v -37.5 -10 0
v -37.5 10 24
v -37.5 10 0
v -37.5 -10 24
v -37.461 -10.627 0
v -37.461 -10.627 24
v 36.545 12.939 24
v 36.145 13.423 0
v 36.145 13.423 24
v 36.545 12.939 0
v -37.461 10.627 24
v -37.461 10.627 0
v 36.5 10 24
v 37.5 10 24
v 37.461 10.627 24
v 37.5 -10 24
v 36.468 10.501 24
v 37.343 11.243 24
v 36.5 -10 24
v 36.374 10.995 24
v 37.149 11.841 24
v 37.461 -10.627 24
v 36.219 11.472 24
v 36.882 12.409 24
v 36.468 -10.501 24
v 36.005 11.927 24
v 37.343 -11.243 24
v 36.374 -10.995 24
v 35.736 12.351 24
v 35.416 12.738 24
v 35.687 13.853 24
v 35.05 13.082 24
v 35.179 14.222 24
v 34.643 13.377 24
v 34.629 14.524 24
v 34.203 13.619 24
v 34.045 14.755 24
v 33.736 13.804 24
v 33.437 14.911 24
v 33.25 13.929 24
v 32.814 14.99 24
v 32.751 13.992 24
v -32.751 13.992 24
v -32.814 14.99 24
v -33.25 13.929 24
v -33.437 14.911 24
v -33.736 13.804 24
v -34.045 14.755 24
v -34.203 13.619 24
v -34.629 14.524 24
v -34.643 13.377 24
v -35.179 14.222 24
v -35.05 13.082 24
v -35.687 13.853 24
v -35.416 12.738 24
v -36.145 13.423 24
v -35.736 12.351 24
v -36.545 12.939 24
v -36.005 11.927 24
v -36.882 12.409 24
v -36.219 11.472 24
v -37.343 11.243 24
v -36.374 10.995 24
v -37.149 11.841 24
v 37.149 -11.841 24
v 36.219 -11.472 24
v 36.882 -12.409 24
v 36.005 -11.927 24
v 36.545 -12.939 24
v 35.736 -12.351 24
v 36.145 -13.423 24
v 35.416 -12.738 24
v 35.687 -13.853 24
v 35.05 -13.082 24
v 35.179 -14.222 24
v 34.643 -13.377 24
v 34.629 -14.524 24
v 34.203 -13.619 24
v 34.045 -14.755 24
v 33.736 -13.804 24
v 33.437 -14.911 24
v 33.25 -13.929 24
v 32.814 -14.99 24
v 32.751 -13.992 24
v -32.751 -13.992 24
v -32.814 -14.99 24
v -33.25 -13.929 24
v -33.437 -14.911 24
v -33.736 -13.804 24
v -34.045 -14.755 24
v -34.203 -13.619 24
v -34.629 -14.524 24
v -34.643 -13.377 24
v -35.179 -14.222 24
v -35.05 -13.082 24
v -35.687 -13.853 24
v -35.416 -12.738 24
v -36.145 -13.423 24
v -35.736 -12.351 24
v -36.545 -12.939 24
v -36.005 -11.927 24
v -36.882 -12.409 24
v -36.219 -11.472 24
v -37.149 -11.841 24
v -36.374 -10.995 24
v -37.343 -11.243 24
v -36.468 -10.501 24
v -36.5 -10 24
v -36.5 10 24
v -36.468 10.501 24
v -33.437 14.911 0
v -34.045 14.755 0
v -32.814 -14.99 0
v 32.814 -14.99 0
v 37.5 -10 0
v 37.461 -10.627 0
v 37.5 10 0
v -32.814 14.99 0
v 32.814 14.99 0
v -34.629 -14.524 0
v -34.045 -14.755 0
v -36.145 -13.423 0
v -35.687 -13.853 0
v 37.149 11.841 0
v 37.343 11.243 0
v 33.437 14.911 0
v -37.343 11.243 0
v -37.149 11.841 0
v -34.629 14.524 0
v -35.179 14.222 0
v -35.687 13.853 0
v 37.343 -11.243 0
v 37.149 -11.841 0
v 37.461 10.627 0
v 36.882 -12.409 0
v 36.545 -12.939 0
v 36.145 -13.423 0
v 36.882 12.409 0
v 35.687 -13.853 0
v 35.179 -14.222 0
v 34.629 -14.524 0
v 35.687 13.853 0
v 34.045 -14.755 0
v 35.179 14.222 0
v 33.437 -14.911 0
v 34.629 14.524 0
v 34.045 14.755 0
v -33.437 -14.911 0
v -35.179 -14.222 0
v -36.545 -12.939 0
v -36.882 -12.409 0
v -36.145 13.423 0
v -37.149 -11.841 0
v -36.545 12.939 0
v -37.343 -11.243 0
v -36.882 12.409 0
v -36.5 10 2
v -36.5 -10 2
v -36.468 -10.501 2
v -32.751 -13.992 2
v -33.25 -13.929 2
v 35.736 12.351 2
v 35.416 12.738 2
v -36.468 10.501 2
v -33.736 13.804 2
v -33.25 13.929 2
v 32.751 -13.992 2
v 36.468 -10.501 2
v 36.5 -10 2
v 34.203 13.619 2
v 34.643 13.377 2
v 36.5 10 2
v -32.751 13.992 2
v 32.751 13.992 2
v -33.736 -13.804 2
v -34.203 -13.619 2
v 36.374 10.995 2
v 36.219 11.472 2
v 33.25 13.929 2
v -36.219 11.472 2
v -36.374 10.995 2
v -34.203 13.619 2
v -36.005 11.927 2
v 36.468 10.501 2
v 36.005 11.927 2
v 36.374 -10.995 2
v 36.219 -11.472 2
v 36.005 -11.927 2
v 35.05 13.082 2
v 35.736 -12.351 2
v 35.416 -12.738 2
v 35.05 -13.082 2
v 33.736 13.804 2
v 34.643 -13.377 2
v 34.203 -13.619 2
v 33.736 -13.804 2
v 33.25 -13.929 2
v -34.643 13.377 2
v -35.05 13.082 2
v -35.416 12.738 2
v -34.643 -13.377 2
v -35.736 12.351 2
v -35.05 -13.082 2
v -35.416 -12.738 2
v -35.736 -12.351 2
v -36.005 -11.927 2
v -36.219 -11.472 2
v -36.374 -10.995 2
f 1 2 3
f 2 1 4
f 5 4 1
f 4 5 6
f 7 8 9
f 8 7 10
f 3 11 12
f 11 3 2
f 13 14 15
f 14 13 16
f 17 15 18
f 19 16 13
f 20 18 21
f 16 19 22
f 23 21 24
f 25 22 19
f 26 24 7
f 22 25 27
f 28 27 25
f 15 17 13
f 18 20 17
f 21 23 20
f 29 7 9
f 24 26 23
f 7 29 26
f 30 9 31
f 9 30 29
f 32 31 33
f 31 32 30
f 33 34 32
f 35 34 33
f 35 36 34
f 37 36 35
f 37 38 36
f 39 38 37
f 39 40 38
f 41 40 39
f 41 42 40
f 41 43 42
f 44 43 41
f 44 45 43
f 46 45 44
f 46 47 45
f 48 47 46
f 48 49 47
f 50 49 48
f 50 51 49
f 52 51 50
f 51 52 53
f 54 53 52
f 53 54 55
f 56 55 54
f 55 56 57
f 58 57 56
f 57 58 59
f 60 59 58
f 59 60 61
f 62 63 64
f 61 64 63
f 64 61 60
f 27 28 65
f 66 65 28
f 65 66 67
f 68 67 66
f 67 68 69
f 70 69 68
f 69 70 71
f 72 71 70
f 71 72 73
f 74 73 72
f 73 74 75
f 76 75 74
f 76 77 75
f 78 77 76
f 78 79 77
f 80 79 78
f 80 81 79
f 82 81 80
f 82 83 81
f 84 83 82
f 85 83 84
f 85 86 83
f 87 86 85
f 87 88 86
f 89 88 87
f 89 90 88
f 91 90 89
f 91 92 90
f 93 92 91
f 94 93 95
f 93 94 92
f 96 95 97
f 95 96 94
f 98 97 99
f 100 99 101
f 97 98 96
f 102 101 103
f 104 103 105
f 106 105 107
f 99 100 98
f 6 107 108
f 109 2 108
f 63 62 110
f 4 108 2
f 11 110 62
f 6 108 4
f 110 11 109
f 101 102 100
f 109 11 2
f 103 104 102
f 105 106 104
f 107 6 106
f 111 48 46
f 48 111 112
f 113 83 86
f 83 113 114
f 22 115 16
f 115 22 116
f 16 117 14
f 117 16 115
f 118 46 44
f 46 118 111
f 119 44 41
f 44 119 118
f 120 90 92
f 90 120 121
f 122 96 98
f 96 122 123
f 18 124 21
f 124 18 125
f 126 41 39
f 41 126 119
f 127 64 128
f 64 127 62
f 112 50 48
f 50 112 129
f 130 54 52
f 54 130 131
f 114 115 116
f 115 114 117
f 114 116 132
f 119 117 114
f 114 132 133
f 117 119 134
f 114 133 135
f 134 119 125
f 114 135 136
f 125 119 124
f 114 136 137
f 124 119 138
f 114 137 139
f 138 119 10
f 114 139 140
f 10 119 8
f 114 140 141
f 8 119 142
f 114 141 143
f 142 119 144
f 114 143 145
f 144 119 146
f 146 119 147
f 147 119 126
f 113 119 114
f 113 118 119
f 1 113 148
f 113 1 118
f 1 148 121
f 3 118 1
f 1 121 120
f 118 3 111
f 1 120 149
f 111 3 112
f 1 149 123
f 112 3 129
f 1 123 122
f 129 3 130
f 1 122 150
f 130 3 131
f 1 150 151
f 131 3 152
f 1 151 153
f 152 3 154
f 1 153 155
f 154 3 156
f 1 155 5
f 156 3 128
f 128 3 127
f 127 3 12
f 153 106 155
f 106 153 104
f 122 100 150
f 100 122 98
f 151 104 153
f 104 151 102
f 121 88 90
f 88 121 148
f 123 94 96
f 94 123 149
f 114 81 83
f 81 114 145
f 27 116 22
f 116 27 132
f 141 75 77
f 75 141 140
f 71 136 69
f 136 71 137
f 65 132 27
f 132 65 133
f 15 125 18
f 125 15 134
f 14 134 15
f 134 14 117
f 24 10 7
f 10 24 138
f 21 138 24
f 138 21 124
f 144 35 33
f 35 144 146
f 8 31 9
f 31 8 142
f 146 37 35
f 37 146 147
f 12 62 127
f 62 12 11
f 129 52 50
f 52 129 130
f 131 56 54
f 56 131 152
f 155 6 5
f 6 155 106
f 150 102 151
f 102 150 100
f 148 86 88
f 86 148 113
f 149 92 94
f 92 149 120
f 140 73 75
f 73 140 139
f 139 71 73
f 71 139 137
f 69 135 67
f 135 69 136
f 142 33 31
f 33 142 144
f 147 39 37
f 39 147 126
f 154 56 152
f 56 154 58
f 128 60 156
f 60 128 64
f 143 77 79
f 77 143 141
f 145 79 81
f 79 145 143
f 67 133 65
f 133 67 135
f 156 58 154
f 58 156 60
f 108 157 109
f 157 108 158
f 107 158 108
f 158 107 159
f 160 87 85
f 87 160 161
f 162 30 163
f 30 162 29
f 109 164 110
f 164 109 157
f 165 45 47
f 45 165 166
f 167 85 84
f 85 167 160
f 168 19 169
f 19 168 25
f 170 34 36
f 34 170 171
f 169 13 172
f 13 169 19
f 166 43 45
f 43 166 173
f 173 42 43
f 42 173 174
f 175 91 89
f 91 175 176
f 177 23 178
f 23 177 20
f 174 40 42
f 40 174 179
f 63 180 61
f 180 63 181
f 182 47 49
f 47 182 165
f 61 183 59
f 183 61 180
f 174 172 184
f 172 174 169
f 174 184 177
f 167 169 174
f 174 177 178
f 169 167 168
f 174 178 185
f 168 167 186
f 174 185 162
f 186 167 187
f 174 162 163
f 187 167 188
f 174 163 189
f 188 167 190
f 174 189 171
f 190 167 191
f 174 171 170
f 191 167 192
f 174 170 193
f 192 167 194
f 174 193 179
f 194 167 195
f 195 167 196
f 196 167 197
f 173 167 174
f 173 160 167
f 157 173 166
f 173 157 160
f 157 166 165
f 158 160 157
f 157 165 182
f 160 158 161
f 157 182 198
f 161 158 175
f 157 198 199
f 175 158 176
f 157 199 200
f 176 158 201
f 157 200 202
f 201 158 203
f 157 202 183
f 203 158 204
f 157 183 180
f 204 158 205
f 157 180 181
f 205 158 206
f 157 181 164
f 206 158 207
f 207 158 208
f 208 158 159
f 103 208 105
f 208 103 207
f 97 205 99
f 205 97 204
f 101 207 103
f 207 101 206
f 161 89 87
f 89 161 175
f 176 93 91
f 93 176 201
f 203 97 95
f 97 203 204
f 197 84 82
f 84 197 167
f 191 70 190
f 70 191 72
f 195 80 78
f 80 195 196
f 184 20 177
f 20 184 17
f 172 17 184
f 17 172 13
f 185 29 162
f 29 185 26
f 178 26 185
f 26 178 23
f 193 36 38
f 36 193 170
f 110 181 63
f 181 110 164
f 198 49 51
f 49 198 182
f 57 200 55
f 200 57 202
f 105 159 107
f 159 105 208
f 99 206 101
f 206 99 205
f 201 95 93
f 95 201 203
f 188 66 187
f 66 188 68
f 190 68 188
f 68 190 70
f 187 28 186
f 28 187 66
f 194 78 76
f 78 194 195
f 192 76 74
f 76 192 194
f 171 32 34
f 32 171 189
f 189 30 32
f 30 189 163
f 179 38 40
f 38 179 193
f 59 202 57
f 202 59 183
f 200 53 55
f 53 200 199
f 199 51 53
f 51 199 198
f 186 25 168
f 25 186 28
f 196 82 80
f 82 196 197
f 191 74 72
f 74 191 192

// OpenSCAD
$fn = 50;


difference() {
	union() {
		hull() {
			translate(v = [-32.5000000000, 10.0000000000, 0]) {
				cylinder(h = 24, r = 5);
			}
			translate(v = [32.5000000000, 10.0000000000, 0]) {
				cylinder(h = 24, r = 5);
			}
			translate(v = [-32.5000000000, -10.0000000000, 0]) {
				cylinder(h = 24, r = 5);
			}
			translate(v = [32.5000000000, -10.0000000000, 0]) {
				cylinder(h = 24, r = 5);
			}
		}
	}
	union() {
		translate(v = [0, 0, 2]) {
			#hull() {
				translate(v = [-32.5000000000, 10.0000000000, 0]) {
					cylinder(h = 22, r = 4);
				}
				translate(v = [32.5000000000, 10.0000000000, 0]) {
					cylinder(h = 22, r = 4);
				}
				translate(v = [-32.5000000000, -10.0000000000, 0]) {
					cylinder(h = 22, r = 4);
				}
				translate(v = [32.5000000000, -10.0000000000, 0]) {
					cylinder(h = 22, r = 4);
				}
			}
		}
	}
}
